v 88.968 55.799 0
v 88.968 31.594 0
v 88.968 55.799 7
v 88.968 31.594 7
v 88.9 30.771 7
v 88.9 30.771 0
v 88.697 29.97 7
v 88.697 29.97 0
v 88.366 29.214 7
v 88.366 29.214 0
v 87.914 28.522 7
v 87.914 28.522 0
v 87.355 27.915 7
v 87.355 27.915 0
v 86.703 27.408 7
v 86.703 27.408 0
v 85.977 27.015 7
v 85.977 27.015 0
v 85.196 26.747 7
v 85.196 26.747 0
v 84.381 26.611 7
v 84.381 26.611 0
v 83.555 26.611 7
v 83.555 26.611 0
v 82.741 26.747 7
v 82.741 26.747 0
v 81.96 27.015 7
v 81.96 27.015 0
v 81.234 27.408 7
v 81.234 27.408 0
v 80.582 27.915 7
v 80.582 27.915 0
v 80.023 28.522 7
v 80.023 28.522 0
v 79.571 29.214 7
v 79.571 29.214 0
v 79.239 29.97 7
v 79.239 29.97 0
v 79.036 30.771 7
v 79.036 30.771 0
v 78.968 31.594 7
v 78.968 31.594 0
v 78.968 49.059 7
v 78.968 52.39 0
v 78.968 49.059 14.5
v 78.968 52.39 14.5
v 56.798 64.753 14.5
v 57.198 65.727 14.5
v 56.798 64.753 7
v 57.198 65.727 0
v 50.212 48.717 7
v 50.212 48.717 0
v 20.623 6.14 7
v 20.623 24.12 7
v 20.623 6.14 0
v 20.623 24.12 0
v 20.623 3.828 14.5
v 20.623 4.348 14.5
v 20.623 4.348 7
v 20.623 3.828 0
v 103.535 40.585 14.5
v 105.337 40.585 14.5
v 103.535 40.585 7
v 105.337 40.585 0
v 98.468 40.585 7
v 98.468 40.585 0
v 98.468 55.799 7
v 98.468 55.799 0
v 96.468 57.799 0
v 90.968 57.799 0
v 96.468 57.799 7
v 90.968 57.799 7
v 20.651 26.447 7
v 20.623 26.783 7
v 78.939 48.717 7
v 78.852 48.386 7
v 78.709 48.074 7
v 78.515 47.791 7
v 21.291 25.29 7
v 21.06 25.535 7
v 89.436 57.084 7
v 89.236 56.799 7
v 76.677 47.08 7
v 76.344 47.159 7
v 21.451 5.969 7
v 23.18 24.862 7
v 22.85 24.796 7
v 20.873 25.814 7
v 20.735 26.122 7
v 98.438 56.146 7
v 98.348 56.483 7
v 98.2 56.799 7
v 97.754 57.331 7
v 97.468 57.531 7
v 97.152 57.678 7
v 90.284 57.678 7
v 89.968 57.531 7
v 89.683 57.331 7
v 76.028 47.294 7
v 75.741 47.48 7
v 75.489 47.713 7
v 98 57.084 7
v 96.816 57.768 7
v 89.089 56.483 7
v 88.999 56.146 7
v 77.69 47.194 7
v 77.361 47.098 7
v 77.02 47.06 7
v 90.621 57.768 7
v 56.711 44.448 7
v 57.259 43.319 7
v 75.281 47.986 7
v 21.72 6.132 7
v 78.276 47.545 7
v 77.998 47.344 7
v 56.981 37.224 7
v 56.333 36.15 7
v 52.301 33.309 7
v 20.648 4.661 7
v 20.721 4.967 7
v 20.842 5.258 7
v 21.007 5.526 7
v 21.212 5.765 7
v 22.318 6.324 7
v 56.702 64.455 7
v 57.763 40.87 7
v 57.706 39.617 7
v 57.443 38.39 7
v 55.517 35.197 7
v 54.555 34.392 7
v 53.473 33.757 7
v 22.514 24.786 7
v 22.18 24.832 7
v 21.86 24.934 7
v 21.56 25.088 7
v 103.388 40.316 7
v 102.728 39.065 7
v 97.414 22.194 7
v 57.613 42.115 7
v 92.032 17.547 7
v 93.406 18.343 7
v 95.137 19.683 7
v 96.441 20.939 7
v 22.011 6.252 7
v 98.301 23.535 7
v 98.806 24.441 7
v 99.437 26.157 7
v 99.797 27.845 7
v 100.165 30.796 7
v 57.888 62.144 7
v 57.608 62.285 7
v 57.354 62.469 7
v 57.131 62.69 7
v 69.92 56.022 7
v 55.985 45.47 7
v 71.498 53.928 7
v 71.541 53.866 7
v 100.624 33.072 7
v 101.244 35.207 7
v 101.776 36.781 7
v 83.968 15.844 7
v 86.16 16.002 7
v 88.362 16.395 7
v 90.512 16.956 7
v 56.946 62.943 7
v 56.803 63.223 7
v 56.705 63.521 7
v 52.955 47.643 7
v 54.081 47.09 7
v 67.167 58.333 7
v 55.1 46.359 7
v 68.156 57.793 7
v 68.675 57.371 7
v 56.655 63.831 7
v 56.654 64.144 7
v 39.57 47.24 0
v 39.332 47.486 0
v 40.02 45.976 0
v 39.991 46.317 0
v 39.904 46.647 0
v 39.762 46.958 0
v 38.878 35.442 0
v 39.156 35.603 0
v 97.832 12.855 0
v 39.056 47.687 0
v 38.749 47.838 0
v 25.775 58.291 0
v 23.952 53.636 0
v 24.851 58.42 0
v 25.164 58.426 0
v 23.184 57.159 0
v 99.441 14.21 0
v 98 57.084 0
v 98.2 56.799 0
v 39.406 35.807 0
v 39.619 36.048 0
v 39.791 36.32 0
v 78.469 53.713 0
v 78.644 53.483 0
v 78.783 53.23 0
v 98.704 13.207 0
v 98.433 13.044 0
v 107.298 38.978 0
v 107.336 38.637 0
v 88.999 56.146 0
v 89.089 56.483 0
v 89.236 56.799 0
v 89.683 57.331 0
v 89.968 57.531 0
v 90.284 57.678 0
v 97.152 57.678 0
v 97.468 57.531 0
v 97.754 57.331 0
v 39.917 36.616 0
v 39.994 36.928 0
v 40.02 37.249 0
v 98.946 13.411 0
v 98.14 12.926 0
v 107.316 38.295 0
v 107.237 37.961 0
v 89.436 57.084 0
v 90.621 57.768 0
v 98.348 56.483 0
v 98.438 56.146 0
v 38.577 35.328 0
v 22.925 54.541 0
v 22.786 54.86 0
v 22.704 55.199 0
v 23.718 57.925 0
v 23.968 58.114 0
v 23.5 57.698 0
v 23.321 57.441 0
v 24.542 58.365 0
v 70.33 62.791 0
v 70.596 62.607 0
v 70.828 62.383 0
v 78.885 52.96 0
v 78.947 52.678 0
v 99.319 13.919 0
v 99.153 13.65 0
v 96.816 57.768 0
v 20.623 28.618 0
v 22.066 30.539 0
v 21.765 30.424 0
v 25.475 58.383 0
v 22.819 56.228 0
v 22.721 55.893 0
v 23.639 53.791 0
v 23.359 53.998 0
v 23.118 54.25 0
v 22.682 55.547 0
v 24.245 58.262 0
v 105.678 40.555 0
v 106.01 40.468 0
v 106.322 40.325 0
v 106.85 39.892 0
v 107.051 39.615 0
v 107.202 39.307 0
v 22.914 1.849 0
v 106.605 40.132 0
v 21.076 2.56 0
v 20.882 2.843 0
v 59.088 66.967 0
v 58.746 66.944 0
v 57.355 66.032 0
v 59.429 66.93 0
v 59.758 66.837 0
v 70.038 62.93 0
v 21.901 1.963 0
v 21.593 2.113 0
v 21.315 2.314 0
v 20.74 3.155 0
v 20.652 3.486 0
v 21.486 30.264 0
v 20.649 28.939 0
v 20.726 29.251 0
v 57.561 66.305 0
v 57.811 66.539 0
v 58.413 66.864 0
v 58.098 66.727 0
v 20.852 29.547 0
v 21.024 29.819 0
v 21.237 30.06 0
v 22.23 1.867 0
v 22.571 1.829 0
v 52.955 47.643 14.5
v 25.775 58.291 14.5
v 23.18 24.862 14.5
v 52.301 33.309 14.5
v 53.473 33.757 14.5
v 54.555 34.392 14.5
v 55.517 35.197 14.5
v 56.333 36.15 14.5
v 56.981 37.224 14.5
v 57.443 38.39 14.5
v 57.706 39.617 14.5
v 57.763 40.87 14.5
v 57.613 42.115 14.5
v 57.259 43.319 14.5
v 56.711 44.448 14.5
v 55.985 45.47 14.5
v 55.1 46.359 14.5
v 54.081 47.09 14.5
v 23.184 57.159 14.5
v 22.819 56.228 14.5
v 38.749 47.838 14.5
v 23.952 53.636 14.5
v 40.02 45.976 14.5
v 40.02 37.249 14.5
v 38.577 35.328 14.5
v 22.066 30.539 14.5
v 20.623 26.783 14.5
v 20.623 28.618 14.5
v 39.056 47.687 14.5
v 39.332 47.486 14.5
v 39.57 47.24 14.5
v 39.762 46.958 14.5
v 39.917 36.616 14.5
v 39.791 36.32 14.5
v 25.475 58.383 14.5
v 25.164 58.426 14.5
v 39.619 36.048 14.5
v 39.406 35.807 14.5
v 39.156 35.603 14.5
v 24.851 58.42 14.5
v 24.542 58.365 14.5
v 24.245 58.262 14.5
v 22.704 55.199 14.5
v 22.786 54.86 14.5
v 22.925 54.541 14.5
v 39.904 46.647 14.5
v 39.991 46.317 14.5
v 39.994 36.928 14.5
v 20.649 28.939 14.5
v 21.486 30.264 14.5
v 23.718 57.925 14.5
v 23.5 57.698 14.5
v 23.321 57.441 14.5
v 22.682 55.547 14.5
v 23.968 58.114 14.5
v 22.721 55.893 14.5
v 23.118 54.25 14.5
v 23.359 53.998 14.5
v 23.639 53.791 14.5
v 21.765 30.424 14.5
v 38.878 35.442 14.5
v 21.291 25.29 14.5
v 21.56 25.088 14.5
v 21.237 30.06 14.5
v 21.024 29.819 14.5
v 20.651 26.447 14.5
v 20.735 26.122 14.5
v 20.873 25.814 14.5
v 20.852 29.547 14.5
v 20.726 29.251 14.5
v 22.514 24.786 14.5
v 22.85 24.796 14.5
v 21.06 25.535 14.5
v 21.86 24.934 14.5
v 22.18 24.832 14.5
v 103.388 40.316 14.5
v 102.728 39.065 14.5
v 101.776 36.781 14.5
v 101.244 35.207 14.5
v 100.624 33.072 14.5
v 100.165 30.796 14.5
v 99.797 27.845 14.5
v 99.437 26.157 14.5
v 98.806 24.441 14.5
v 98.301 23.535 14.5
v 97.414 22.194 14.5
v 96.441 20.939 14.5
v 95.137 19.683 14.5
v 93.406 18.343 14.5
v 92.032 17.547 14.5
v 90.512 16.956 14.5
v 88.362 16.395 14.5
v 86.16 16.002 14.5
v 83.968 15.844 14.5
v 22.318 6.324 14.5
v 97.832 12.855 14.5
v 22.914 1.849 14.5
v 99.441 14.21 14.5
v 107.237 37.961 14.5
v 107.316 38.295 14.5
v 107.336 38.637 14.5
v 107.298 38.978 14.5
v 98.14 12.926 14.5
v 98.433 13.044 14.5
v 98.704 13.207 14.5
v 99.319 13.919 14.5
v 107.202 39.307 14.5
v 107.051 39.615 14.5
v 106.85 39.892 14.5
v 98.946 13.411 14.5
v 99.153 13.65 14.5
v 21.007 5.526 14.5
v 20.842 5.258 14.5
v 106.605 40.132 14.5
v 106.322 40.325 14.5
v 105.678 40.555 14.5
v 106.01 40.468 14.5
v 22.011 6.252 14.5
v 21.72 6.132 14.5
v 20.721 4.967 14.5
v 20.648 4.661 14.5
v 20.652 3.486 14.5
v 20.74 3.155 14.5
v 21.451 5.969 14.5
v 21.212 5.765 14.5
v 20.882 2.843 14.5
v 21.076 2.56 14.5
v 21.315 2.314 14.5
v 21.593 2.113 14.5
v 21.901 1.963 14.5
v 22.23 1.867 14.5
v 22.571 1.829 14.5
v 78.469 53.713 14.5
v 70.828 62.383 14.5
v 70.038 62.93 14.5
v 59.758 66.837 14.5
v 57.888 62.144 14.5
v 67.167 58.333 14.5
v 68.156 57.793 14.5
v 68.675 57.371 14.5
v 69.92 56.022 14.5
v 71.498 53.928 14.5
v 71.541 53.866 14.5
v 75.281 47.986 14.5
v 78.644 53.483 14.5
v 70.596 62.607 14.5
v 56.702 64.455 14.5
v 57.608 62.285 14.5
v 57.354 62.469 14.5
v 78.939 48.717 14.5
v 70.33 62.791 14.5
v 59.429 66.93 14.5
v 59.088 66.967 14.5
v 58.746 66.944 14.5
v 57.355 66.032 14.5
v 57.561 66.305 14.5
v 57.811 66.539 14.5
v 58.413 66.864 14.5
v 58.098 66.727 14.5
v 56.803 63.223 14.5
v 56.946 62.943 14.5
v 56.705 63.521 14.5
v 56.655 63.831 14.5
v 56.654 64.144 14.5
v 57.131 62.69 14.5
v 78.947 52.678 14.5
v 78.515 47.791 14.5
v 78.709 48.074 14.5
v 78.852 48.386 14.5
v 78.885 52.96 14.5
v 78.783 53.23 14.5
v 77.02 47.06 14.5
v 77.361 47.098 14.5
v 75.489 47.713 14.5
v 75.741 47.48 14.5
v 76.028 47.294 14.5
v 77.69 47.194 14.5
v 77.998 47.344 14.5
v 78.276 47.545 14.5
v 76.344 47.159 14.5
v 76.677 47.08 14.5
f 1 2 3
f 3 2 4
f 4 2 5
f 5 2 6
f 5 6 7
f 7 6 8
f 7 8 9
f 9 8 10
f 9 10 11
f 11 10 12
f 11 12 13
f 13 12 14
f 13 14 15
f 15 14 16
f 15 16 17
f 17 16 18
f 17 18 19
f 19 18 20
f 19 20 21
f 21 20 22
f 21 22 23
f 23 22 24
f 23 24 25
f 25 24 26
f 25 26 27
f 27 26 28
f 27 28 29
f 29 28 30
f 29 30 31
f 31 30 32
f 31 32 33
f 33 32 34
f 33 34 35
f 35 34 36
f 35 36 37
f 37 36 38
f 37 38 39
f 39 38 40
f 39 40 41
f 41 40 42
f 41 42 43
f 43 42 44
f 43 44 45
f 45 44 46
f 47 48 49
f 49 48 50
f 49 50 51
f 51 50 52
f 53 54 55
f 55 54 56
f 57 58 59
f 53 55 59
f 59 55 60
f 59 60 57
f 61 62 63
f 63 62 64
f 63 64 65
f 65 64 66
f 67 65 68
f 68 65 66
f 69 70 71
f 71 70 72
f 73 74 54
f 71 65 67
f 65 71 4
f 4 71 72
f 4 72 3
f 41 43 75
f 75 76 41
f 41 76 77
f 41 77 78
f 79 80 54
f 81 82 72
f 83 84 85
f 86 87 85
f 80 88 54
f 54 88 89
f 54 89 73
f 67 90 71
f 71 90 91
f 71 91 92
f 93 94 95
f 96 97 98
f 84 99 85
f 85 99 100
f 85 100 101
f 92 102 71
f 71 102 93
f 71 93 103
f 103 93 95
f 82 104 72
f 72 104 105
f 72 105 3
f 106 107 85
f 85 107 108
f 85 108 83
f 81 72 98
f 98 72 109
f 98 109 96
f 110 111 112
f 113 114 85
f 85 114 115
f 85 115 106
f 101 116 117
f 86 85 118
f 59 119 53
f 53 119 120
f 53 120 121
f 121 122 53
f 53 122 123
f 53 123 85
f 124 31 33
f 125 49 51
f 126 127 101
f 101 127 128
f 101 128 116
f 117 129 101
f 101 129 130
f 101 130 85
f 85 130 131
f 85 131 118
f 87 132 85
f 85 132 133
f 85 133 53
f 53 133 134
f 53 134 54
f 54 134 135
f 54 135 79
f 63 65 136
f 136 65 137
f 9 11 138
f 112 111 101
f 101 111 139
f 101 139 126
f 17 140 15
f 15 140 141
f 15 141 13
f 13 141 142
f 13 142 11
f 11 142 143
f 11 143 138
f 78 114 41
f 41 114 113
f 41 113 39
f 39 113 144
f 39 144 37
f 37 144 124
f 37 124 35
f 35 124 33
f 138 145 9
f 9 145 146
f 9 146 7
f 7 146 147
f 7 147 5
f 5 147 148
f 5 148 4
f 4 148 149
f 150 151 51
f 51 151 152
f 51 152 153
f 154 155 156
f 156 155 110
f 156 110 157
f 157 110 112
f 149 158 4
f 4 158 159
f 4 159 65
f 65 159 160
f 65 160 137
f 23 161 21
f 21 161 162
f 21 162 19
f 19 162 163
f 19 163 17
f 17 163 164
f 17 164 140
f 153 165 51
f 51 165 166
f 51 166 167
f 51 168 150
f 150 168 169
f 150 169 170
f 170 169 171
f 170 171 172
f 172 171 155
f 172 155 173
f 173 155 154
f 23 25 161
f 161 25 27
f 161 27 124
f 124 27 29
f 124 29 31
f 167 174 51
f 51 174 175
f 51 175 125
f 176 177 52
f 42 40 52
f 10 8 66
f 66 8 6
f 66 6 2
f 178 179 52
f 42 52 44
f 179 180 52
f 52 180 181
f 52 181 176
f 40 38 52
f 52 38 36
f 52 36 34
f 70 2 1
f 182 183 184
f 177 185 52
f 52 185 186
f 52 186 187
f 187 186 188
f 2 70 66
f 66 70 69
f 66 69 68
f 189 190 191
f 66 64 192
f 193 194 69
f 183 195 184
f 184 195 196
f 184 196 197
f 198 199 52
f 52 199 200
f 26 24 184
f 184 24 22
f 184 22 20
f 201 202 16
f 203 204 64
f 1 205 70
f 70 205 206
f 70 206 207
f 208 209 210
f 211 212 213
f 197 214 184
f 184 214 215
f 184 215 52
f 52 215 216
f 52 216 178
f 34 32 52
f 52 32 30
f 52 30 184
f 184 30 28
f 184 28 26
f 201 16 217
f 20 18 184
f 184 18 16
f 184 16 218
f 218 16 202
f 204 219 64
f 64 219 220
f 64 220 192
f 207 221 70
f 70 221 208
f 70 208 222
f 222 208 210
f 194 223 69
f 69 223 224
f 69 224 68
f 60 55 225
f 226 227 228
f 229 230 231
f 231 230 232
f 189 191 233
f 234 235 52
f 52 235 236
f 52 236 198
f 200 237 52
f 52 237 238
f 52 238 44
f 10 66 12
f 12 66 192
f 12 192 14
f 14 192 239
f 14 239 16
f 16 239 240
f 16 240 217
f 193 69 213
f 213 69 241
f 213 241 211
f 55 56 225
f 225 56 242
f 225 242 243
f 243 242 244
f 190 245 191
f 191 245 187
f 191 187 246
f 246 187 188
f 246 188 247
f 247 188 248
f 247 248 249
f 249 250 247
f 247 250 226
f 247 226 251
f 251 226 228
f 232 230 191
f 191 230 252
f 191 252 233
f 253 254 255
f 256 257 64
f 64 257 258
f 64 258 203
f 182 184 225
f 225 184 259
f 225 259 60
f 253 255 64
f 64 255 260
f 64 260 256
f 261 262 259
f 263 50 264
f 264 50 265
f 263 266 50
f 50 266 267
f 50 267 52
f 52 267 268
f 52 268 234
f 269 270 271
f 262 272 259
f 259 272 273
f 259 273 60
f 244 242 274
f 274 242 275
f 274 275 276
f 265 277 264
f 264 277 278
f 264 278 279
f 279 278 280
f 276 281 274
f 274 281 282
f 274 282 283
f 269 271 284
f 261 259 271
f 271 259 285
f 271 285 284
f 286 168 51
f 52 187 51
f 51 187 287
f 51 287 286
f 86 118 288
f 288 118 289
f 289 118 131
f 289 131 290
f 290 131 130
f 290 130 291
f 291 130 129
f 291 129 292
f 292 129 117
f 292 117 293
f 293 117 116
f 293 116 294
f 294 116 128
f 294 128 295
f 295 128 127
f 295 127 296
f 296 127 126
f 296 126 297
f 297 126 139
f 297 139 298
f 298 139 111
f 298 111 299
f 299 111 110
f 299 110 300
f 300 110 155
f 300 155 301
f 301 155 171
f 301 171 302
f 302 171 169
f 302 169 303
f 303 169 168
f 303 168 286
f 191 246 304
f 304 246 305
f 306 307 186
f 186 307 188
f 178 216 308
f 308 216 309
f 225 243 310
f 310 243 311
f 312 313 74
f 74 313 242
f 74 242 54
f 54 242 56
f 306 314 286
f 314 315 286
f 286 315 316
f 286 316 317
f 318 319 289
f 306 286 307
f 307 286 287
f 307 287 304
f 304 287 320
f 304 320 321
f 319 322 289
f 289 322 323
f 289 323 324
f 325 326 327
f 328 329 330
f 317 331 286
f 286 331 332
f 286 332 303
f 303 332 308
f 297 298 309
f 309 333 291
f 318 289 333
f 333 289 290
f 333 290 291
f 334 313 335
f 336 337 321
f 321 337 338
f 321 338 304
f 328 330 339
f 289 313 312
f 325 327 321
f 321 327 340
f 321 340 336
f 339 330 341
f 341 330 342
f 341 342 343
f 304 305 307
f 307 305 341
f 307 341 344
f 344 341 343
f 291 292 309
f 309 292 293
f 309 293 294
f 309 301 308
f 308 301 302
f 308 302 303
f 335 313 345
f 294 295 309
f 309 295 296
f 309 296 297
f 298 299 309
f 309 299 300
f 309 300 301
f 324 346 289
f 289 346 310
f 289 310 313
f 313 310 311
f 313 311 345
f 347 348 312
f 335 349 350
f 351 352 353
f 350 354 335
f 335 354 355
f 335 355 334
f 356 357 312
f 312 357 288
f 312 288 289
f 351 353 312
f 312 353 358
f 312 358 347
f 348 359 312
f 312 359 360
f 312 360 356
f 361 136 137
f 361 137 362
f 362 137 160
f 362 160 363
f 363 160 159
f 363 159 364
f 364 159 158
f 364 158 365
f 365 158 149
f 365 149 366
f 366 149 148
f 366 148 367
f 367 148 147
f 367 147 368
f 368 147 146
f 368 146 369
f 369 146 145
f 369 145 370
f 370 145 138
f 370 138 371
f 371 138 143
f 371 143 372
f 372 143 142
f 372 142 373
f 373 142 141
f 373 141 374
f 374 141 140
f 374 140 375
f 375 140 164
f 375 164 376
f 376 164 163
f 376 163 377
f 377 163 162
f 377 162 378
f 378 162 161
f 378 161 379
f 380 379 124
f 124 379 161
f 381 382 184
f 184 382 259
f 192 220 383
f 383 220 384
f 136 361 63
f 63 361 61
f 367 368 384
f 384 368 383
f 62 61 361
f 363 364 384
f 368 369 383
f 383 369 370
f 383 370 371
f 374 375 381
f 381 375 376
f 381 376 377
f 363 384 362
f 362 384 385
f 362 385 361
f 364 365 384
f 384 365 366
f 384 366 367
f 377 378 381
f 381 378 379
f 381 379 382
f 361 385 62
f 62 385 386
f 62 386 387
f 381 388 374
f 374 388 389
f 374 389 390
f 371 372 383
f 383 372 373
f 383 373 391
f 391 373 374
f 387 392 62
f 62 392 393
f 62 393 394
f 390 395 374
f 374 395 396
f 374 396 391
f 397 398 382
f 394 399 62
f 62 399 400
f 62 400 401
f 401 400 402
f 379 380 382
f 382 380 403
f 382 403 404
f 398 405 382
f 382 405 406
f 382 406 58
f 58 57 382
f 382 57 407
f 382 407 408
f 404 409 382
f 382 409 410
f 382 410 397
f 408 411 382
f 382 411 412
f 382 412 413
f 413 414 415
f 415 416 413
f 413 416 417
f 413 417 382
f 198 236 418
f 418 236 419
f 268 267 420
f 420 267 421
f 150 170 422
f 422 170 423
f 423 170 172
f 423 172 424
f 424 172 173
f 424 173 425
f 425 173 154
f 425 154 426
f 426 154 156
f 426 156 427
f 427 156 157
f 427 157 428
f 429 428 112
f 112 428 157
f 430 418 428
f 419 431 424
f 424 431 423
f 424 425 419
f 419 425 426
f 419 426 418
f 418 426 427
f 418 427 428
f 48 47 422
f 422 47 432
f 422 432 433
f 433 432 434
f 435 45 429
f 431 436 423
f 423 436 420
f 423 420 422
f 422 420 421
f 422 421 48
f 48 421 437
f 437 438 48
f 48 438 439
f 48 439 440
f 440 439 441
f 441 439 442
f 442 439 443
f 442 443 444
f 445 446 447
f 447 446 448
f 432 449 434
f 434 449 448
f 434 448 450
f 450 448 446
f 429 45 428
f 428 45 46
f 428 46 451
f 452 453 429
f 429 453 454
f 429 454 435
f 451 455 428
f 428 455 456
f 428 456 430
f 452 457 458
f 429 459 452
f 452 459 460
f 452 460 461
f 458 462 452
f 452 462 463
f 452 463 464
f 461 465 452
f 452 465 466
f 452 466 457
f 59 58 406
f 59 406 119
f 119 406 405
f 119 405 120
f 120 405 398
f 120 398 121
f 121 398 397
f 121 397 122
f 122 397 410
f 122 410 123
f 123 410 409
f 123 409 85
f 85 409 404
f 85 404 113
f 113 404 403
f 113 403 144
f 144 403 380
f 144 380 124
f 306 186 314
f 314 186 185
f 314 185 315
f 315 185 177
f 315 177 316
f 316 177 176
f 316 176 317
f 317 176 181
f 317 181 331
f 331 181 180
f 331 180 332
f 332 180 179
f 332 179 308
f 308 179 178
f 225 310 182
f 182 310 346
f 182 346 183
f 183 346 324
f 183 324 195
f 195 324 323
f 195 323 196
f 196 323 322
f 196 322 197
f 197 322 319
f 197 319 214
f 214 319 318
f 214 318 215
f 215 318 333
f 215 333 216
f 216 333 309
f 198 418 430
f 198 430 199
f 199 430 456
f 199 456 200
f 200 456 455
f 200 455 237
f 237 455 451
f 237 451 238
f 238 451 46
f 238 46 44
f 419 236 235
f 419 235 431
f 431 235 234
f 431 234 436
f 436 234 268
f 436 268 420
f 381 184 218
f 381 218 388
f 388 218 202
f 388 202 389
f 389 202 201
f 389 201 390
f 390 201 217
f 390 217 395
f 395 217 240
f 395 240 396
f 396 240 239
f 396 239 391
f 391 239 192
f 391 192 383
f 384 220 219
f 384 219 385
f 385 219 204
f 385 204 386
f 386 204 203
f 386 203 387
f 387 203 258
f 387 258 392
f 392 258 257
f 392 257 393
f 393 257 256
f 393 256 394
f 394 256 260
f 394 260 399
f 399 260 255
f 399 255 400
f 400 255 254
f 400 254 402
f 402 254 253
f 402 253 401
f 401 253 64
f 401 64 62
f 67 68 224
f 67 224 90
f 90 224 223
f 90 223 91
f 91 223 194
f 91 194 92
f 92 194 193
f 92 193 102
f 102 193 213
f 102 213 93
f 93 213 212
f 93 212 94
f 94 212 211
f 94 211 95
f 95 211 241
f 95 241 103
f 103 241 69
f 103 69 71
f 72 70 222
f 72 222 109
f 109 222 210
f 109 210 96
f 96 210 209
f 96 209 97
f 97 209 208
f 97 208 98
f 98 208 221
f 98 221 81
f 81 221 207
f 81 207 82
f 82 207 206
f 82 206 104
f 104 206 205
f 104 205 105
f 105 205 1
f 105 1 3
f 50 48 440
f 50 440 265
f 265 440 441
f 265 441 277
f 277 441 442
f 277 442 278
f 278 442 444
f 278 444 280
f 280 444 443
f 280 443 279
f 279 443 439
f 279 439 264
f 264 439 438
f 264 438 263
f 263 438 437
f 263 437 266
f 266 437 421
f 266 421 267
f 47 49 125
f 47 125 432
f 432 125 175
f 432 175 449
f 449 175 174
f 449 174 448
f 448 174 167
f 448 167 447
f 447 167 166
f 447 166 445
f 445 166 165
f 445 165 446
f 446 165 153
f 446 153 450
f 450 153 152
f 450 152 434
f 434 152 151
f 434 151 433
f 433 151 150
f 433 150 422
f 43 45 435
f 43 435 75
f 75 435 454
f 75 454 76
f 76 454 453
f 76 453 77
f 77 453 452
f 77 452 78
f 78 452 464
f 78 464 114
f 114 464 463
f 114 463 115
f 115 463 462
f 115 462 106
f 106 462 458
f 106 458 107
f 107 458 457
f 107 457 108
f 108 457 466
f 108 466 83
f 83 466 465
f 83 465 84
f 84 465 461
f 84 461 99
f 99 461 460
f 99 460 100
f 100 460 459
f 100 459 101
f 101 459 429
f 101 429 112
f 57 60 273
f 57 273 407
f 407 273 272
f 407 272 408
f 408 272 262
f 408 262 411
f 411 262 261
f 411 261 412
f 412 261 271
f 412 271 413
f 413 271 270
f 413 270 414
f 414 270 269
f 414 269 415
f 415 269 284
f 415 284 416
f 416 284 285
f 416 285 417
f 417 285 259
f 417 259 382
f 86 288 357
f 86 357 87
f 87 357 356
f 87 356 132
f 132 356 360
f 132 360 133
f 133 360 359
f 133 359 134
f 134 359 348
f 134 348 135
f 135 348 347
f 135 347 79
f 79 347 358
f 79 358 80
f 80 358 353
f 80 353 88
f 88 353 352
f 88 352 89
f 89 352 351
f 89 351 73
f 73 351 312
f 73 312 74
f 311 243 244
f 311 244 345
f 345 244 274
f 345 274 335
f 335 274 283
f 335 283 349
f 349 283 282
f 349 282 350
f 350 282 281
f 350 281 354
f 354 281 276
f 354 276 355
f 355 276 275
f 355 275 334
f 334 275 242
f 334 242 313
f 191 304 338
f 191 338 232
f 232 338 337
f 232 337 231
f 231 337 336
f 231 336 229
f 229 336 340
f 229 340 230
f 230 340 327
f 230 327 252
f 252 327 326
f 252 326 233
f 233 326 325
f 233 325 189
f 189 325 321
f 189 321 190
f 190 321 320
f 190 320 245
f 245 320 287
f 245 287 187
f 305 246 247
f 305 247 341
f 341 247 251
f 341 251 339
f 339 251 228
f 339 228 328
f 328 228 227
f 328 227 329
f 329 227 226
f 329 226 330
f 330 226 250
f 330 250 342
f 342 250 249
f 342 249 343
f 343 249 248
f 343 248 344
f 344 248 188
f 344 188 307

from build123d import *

# Parameters (mm, degrees)
BOSS_EXTRUDE1_DEPTH = 7
BOSS_EXTRUDE2_DEPTH = 14.5
FILLET1_R           = 2


with BuildPart() as part:
    # Sketch1 → Boss-Extrude1 (new body)
    with BuildSketch(Plane.XY):
        with BuildLine():
            Line((78.968274755, 42.187825254), (71.540745427, 53.865587102))
            add(Edge.make_bspline(
                [(68.390340924, 57.620496538), (68.602709936, 57.450222077), (69.775890669, 56.287697417), (70.767112906, 54.998035869), (71.540745427, 53.865587102)],
                knots=[0.224190465, 0.224190465, 0.224190465, 0.224190465, 0.35338295, 1, 1, 1, 1], degree=3))
            add(Edge.make_bspline(
                [(67.166812946, 58.333047532), (67.530665789, 58.148158455), (67.965619608, 57.94613578), (68.341003199, 57.660054826), (68.390340924, 57.620496538)],
                knots=[0, 0, 0, 0, 0.194176372, 0.224190465, 0.224190465, 0.224190465, 0.224190465], degree=3))
            Line((67.166812946, 58.333047532), (56.038116318, 62.903316899))
            Line((56.038116318, 62.903316899), (50.212333598, 48.717420333))
            Line((50.212333598, 48.717420333), (52.954647131, 47.643030748))
            ThreePointArc((52.954647131, 47.643030748), (57.760447877, 40.242237766), (52.301439007, 33.309224011))
            Line((52.301439007, 33.309224011), (20.622854325, 24.120186594))
            Line((20.622854325, 24.120186594), (20.622821101, 6.139939904))
            Line((20.622821101, 6.139939904), (20.622821101, 6.062388022))
            Line((20.622821101, 6.062388022), (83.968274755, 15.843555634))
            add(Edge.make_bspline(
                [(83.968274755, 15.843555634), (85.800365799, 15.861062532), (88.173725783, 16.289321284), (90.975797999, 17.070964386), (92.71201966, 17.824393939), (94.432142997, 19.052982354), (96.042680501, 20.454120962), (97.16419489, 21.752212783), (97.85208587, 22.923017738), (98.591547775, 23.89563478), (99.076744993, 25.078186891), (99.653721004, 26.703400446), (99.922417932, 28.680656555), (100.145652546, 30.848800013), (100.518866207, 32.862374789), (101.110135911, 34.645256352), (101.507154147, 36.227897201), (102.065937234, 37.400646368), (102.486280277, 38.406589289), (102.848421122, 39.429390424), (103.210900567, 39.990397653), (103.388377927, 40.31628874)],
                knots=[0, 0, 0, 0, 0.157855041, 0.207039447, 0.25109495, 0.320551145, 0.388512016, 0.435360012, 0.467800808, 0.505699215, 0.54027798, 0.577572476, 0.654531679, 0.711416671, 0.766136786, 0.830869277, 0.873613049, 0.906584734, 0.942749871, 0.967881323, 1, 1, 1, 1], degree=3))
            Line((103.388377927, 40.31628874), (103.535345735, 40.584708371))
            Line((103.535345735, 40.584708371), (98.468274755, 40.584708371))
            Line((98.468274755, 40.584708371), (98.468274755, 57.798688379))
            Line((98.468274755, 57.798688379), (88.968274755, 57.798688379))
            Line((88.968274755, 57.798688379), (88.968274755, 31.593555634))
            ThreePointArc((88.968274755, 31.593555634), (83.968274755, 26.593555634), (78.968274755, 31.593555634))
            Line((78.968274755, 31.593555634), (78.968274755, 42.187825254))
        make_face()
    extrude(amount=BOSS_EXTRUDE1_DEPTH)

    # Sketch1<3> → Boss-Extrude2 (add)
    with BuildSketch(Plane.XY):
        with BuildLine():
            Line((78.968274755, 42.187825254), (78.968274755, 53.145980791))
            Line((78.968274755, 53.145980791), (70.500822854, 62.754302183))
            Line((70.500822854, 62.754302183), (57.937552223, 67.52848103))
            Line((57.937552223, 67.52848103), (56.038116318, 62.903316899))
            Line((56.038116318, 62.903316899), (67.166812946, 58.333047532))
            add(Edge.make_bspline(
                [(67.166812946, 58.333047532), (67.530665789, 58.148158455), (68.216267043, 57.829717754), (69.737542808, 56.337591135), (70.767112906, 54.998035869), (71.540745427, 53.865587102)],
                knots=[0, 0, 0, 0, 0.194176372, 0.35338295, 1, 1, 1, 1], degree=3))
            Line((71.540745427, 53.865587102), (78.968274755, 42.187825254))
        make_face()
        with BuildLine():
            Line((108.098254598, 40.584708371), (103.535345735, 40.584708371))
            Line((103.535345735, 40.584708371), (103.388377927, 40.31628874))
            add(Edge.make_bspline(
                [(83.968274755, 15.843555634), (85.800365799, 15.861062532), (88.173725783, 16.289321284), (90.975797999, 17.070964386), (92.71201966, 17.824393939), (94.432142997, 19.052982354), (96.042680501, 20.454120962), (97.16419489, 21.752212783), (97.85208587, 22.923017738), (98.591547775, 23.89563478), (99.076744993, 25.078186891), (99.653721004, 26.703400446), (99.922417932, 28.680656555), (100.145652546, 30.848800013), (100.518866207, 32.862374789), (101.110135911, 34.645256352), (101.507154147, 36.227897201), (102.065937234, 37.400646368), (102.486280277, 38.406589289), (102.848421122, 39.429390424), (103.210900567, 39.990397653), (103.388377927, 40.31628874)],
                knots=[0, 0, 0, 0, 0.157855041, 0.207039447, 0.25109495, 0.320551145, 0.388512016, 0.435360012, 0.467800808, 0.505699215, 0.54027798, 0.577572476, 0.654531679, 0.711416671, 0.766136786, 0.830869277, 0.873613049, 0.906584734, 0.942749871, 0.967881323, 1, 1, 1, 1], degree=3))
            Line((83.968274755, 15.843555634), (20.622821101, 6.062388022))
            Line((20.622821101, 6.062388022), (20.622821101, 1.512651605))
            Line((20.622821101, 1.512651605), (99.055701616, 13.03519587))
            Line((99.055701616, 13.03519587), (108.098254598, 40.584708371))
        make_face()
        with BuildLine():
            Line((52.954647131, 47.643030748), (23.913290613, 59.020916827))
            Line((23.913290613, 59.020916827), (22.089364871, 54.365458215))
            Line((22.089364871, 54.365458215), (40.019787084, 47.340638243))
            Line((40.019787084, 47.340638243), (40.019787084, 35.746673468))
            Line((40.019787084, 35.746673468), (20.622854325, 30.120186594))
            Line((20.622854325, 30.120186594), (20.622854325, 24.120186594))
            Line((20.622854325, 24.120186594), (52.301439007, 33.309224011))
            ThreePointArc((52.301439007, 33.309224011), (57.760447877, 40.242237766), (52.954647131, 47.643030748))
        make_face()
    extrude(amount=BOSS_EXTRUDE2_DEPTH)

    # Fillet1
    fillet1_edges = [part.edges().sort_by_distance(p)[0] for p in [
        (78.968274755, 53.145980791, 7.25),
        (70.500822854, 62.754302183, 7.25),
        (99.055701616, 13.03519587, 7.25),
        (108.098254598, 40.584708371, 7.25),
        (98.468274755, 57.798688379, 3.5),
        (88.968274755, 57.798688379, 3.5),
        (57.937552223, 67.52848103, 7.25),
        (56.038116318, 62.903316899, 10.75),
        (78.968274755, 42.187825254, 10.75),
        (20.622821101, 1.512651605, 7.25),
        (20.622854325, 24.120186594, 10.75),
        (20.622854325, 30.120186594, 7.25),
        (23.913290613, 59.020916827, 7.25),
        (22.089364871, 54.365458215, 7.25),
        (40.019787084, 47.340638243, 7.25),
        (40.019787084, 35.746673468, 7.25),
        (20.622821101, 6.062388022, 10.75),
    ]]
    fillet(fillet1_edges, radius=FILLET1_R)


solid = part.part
